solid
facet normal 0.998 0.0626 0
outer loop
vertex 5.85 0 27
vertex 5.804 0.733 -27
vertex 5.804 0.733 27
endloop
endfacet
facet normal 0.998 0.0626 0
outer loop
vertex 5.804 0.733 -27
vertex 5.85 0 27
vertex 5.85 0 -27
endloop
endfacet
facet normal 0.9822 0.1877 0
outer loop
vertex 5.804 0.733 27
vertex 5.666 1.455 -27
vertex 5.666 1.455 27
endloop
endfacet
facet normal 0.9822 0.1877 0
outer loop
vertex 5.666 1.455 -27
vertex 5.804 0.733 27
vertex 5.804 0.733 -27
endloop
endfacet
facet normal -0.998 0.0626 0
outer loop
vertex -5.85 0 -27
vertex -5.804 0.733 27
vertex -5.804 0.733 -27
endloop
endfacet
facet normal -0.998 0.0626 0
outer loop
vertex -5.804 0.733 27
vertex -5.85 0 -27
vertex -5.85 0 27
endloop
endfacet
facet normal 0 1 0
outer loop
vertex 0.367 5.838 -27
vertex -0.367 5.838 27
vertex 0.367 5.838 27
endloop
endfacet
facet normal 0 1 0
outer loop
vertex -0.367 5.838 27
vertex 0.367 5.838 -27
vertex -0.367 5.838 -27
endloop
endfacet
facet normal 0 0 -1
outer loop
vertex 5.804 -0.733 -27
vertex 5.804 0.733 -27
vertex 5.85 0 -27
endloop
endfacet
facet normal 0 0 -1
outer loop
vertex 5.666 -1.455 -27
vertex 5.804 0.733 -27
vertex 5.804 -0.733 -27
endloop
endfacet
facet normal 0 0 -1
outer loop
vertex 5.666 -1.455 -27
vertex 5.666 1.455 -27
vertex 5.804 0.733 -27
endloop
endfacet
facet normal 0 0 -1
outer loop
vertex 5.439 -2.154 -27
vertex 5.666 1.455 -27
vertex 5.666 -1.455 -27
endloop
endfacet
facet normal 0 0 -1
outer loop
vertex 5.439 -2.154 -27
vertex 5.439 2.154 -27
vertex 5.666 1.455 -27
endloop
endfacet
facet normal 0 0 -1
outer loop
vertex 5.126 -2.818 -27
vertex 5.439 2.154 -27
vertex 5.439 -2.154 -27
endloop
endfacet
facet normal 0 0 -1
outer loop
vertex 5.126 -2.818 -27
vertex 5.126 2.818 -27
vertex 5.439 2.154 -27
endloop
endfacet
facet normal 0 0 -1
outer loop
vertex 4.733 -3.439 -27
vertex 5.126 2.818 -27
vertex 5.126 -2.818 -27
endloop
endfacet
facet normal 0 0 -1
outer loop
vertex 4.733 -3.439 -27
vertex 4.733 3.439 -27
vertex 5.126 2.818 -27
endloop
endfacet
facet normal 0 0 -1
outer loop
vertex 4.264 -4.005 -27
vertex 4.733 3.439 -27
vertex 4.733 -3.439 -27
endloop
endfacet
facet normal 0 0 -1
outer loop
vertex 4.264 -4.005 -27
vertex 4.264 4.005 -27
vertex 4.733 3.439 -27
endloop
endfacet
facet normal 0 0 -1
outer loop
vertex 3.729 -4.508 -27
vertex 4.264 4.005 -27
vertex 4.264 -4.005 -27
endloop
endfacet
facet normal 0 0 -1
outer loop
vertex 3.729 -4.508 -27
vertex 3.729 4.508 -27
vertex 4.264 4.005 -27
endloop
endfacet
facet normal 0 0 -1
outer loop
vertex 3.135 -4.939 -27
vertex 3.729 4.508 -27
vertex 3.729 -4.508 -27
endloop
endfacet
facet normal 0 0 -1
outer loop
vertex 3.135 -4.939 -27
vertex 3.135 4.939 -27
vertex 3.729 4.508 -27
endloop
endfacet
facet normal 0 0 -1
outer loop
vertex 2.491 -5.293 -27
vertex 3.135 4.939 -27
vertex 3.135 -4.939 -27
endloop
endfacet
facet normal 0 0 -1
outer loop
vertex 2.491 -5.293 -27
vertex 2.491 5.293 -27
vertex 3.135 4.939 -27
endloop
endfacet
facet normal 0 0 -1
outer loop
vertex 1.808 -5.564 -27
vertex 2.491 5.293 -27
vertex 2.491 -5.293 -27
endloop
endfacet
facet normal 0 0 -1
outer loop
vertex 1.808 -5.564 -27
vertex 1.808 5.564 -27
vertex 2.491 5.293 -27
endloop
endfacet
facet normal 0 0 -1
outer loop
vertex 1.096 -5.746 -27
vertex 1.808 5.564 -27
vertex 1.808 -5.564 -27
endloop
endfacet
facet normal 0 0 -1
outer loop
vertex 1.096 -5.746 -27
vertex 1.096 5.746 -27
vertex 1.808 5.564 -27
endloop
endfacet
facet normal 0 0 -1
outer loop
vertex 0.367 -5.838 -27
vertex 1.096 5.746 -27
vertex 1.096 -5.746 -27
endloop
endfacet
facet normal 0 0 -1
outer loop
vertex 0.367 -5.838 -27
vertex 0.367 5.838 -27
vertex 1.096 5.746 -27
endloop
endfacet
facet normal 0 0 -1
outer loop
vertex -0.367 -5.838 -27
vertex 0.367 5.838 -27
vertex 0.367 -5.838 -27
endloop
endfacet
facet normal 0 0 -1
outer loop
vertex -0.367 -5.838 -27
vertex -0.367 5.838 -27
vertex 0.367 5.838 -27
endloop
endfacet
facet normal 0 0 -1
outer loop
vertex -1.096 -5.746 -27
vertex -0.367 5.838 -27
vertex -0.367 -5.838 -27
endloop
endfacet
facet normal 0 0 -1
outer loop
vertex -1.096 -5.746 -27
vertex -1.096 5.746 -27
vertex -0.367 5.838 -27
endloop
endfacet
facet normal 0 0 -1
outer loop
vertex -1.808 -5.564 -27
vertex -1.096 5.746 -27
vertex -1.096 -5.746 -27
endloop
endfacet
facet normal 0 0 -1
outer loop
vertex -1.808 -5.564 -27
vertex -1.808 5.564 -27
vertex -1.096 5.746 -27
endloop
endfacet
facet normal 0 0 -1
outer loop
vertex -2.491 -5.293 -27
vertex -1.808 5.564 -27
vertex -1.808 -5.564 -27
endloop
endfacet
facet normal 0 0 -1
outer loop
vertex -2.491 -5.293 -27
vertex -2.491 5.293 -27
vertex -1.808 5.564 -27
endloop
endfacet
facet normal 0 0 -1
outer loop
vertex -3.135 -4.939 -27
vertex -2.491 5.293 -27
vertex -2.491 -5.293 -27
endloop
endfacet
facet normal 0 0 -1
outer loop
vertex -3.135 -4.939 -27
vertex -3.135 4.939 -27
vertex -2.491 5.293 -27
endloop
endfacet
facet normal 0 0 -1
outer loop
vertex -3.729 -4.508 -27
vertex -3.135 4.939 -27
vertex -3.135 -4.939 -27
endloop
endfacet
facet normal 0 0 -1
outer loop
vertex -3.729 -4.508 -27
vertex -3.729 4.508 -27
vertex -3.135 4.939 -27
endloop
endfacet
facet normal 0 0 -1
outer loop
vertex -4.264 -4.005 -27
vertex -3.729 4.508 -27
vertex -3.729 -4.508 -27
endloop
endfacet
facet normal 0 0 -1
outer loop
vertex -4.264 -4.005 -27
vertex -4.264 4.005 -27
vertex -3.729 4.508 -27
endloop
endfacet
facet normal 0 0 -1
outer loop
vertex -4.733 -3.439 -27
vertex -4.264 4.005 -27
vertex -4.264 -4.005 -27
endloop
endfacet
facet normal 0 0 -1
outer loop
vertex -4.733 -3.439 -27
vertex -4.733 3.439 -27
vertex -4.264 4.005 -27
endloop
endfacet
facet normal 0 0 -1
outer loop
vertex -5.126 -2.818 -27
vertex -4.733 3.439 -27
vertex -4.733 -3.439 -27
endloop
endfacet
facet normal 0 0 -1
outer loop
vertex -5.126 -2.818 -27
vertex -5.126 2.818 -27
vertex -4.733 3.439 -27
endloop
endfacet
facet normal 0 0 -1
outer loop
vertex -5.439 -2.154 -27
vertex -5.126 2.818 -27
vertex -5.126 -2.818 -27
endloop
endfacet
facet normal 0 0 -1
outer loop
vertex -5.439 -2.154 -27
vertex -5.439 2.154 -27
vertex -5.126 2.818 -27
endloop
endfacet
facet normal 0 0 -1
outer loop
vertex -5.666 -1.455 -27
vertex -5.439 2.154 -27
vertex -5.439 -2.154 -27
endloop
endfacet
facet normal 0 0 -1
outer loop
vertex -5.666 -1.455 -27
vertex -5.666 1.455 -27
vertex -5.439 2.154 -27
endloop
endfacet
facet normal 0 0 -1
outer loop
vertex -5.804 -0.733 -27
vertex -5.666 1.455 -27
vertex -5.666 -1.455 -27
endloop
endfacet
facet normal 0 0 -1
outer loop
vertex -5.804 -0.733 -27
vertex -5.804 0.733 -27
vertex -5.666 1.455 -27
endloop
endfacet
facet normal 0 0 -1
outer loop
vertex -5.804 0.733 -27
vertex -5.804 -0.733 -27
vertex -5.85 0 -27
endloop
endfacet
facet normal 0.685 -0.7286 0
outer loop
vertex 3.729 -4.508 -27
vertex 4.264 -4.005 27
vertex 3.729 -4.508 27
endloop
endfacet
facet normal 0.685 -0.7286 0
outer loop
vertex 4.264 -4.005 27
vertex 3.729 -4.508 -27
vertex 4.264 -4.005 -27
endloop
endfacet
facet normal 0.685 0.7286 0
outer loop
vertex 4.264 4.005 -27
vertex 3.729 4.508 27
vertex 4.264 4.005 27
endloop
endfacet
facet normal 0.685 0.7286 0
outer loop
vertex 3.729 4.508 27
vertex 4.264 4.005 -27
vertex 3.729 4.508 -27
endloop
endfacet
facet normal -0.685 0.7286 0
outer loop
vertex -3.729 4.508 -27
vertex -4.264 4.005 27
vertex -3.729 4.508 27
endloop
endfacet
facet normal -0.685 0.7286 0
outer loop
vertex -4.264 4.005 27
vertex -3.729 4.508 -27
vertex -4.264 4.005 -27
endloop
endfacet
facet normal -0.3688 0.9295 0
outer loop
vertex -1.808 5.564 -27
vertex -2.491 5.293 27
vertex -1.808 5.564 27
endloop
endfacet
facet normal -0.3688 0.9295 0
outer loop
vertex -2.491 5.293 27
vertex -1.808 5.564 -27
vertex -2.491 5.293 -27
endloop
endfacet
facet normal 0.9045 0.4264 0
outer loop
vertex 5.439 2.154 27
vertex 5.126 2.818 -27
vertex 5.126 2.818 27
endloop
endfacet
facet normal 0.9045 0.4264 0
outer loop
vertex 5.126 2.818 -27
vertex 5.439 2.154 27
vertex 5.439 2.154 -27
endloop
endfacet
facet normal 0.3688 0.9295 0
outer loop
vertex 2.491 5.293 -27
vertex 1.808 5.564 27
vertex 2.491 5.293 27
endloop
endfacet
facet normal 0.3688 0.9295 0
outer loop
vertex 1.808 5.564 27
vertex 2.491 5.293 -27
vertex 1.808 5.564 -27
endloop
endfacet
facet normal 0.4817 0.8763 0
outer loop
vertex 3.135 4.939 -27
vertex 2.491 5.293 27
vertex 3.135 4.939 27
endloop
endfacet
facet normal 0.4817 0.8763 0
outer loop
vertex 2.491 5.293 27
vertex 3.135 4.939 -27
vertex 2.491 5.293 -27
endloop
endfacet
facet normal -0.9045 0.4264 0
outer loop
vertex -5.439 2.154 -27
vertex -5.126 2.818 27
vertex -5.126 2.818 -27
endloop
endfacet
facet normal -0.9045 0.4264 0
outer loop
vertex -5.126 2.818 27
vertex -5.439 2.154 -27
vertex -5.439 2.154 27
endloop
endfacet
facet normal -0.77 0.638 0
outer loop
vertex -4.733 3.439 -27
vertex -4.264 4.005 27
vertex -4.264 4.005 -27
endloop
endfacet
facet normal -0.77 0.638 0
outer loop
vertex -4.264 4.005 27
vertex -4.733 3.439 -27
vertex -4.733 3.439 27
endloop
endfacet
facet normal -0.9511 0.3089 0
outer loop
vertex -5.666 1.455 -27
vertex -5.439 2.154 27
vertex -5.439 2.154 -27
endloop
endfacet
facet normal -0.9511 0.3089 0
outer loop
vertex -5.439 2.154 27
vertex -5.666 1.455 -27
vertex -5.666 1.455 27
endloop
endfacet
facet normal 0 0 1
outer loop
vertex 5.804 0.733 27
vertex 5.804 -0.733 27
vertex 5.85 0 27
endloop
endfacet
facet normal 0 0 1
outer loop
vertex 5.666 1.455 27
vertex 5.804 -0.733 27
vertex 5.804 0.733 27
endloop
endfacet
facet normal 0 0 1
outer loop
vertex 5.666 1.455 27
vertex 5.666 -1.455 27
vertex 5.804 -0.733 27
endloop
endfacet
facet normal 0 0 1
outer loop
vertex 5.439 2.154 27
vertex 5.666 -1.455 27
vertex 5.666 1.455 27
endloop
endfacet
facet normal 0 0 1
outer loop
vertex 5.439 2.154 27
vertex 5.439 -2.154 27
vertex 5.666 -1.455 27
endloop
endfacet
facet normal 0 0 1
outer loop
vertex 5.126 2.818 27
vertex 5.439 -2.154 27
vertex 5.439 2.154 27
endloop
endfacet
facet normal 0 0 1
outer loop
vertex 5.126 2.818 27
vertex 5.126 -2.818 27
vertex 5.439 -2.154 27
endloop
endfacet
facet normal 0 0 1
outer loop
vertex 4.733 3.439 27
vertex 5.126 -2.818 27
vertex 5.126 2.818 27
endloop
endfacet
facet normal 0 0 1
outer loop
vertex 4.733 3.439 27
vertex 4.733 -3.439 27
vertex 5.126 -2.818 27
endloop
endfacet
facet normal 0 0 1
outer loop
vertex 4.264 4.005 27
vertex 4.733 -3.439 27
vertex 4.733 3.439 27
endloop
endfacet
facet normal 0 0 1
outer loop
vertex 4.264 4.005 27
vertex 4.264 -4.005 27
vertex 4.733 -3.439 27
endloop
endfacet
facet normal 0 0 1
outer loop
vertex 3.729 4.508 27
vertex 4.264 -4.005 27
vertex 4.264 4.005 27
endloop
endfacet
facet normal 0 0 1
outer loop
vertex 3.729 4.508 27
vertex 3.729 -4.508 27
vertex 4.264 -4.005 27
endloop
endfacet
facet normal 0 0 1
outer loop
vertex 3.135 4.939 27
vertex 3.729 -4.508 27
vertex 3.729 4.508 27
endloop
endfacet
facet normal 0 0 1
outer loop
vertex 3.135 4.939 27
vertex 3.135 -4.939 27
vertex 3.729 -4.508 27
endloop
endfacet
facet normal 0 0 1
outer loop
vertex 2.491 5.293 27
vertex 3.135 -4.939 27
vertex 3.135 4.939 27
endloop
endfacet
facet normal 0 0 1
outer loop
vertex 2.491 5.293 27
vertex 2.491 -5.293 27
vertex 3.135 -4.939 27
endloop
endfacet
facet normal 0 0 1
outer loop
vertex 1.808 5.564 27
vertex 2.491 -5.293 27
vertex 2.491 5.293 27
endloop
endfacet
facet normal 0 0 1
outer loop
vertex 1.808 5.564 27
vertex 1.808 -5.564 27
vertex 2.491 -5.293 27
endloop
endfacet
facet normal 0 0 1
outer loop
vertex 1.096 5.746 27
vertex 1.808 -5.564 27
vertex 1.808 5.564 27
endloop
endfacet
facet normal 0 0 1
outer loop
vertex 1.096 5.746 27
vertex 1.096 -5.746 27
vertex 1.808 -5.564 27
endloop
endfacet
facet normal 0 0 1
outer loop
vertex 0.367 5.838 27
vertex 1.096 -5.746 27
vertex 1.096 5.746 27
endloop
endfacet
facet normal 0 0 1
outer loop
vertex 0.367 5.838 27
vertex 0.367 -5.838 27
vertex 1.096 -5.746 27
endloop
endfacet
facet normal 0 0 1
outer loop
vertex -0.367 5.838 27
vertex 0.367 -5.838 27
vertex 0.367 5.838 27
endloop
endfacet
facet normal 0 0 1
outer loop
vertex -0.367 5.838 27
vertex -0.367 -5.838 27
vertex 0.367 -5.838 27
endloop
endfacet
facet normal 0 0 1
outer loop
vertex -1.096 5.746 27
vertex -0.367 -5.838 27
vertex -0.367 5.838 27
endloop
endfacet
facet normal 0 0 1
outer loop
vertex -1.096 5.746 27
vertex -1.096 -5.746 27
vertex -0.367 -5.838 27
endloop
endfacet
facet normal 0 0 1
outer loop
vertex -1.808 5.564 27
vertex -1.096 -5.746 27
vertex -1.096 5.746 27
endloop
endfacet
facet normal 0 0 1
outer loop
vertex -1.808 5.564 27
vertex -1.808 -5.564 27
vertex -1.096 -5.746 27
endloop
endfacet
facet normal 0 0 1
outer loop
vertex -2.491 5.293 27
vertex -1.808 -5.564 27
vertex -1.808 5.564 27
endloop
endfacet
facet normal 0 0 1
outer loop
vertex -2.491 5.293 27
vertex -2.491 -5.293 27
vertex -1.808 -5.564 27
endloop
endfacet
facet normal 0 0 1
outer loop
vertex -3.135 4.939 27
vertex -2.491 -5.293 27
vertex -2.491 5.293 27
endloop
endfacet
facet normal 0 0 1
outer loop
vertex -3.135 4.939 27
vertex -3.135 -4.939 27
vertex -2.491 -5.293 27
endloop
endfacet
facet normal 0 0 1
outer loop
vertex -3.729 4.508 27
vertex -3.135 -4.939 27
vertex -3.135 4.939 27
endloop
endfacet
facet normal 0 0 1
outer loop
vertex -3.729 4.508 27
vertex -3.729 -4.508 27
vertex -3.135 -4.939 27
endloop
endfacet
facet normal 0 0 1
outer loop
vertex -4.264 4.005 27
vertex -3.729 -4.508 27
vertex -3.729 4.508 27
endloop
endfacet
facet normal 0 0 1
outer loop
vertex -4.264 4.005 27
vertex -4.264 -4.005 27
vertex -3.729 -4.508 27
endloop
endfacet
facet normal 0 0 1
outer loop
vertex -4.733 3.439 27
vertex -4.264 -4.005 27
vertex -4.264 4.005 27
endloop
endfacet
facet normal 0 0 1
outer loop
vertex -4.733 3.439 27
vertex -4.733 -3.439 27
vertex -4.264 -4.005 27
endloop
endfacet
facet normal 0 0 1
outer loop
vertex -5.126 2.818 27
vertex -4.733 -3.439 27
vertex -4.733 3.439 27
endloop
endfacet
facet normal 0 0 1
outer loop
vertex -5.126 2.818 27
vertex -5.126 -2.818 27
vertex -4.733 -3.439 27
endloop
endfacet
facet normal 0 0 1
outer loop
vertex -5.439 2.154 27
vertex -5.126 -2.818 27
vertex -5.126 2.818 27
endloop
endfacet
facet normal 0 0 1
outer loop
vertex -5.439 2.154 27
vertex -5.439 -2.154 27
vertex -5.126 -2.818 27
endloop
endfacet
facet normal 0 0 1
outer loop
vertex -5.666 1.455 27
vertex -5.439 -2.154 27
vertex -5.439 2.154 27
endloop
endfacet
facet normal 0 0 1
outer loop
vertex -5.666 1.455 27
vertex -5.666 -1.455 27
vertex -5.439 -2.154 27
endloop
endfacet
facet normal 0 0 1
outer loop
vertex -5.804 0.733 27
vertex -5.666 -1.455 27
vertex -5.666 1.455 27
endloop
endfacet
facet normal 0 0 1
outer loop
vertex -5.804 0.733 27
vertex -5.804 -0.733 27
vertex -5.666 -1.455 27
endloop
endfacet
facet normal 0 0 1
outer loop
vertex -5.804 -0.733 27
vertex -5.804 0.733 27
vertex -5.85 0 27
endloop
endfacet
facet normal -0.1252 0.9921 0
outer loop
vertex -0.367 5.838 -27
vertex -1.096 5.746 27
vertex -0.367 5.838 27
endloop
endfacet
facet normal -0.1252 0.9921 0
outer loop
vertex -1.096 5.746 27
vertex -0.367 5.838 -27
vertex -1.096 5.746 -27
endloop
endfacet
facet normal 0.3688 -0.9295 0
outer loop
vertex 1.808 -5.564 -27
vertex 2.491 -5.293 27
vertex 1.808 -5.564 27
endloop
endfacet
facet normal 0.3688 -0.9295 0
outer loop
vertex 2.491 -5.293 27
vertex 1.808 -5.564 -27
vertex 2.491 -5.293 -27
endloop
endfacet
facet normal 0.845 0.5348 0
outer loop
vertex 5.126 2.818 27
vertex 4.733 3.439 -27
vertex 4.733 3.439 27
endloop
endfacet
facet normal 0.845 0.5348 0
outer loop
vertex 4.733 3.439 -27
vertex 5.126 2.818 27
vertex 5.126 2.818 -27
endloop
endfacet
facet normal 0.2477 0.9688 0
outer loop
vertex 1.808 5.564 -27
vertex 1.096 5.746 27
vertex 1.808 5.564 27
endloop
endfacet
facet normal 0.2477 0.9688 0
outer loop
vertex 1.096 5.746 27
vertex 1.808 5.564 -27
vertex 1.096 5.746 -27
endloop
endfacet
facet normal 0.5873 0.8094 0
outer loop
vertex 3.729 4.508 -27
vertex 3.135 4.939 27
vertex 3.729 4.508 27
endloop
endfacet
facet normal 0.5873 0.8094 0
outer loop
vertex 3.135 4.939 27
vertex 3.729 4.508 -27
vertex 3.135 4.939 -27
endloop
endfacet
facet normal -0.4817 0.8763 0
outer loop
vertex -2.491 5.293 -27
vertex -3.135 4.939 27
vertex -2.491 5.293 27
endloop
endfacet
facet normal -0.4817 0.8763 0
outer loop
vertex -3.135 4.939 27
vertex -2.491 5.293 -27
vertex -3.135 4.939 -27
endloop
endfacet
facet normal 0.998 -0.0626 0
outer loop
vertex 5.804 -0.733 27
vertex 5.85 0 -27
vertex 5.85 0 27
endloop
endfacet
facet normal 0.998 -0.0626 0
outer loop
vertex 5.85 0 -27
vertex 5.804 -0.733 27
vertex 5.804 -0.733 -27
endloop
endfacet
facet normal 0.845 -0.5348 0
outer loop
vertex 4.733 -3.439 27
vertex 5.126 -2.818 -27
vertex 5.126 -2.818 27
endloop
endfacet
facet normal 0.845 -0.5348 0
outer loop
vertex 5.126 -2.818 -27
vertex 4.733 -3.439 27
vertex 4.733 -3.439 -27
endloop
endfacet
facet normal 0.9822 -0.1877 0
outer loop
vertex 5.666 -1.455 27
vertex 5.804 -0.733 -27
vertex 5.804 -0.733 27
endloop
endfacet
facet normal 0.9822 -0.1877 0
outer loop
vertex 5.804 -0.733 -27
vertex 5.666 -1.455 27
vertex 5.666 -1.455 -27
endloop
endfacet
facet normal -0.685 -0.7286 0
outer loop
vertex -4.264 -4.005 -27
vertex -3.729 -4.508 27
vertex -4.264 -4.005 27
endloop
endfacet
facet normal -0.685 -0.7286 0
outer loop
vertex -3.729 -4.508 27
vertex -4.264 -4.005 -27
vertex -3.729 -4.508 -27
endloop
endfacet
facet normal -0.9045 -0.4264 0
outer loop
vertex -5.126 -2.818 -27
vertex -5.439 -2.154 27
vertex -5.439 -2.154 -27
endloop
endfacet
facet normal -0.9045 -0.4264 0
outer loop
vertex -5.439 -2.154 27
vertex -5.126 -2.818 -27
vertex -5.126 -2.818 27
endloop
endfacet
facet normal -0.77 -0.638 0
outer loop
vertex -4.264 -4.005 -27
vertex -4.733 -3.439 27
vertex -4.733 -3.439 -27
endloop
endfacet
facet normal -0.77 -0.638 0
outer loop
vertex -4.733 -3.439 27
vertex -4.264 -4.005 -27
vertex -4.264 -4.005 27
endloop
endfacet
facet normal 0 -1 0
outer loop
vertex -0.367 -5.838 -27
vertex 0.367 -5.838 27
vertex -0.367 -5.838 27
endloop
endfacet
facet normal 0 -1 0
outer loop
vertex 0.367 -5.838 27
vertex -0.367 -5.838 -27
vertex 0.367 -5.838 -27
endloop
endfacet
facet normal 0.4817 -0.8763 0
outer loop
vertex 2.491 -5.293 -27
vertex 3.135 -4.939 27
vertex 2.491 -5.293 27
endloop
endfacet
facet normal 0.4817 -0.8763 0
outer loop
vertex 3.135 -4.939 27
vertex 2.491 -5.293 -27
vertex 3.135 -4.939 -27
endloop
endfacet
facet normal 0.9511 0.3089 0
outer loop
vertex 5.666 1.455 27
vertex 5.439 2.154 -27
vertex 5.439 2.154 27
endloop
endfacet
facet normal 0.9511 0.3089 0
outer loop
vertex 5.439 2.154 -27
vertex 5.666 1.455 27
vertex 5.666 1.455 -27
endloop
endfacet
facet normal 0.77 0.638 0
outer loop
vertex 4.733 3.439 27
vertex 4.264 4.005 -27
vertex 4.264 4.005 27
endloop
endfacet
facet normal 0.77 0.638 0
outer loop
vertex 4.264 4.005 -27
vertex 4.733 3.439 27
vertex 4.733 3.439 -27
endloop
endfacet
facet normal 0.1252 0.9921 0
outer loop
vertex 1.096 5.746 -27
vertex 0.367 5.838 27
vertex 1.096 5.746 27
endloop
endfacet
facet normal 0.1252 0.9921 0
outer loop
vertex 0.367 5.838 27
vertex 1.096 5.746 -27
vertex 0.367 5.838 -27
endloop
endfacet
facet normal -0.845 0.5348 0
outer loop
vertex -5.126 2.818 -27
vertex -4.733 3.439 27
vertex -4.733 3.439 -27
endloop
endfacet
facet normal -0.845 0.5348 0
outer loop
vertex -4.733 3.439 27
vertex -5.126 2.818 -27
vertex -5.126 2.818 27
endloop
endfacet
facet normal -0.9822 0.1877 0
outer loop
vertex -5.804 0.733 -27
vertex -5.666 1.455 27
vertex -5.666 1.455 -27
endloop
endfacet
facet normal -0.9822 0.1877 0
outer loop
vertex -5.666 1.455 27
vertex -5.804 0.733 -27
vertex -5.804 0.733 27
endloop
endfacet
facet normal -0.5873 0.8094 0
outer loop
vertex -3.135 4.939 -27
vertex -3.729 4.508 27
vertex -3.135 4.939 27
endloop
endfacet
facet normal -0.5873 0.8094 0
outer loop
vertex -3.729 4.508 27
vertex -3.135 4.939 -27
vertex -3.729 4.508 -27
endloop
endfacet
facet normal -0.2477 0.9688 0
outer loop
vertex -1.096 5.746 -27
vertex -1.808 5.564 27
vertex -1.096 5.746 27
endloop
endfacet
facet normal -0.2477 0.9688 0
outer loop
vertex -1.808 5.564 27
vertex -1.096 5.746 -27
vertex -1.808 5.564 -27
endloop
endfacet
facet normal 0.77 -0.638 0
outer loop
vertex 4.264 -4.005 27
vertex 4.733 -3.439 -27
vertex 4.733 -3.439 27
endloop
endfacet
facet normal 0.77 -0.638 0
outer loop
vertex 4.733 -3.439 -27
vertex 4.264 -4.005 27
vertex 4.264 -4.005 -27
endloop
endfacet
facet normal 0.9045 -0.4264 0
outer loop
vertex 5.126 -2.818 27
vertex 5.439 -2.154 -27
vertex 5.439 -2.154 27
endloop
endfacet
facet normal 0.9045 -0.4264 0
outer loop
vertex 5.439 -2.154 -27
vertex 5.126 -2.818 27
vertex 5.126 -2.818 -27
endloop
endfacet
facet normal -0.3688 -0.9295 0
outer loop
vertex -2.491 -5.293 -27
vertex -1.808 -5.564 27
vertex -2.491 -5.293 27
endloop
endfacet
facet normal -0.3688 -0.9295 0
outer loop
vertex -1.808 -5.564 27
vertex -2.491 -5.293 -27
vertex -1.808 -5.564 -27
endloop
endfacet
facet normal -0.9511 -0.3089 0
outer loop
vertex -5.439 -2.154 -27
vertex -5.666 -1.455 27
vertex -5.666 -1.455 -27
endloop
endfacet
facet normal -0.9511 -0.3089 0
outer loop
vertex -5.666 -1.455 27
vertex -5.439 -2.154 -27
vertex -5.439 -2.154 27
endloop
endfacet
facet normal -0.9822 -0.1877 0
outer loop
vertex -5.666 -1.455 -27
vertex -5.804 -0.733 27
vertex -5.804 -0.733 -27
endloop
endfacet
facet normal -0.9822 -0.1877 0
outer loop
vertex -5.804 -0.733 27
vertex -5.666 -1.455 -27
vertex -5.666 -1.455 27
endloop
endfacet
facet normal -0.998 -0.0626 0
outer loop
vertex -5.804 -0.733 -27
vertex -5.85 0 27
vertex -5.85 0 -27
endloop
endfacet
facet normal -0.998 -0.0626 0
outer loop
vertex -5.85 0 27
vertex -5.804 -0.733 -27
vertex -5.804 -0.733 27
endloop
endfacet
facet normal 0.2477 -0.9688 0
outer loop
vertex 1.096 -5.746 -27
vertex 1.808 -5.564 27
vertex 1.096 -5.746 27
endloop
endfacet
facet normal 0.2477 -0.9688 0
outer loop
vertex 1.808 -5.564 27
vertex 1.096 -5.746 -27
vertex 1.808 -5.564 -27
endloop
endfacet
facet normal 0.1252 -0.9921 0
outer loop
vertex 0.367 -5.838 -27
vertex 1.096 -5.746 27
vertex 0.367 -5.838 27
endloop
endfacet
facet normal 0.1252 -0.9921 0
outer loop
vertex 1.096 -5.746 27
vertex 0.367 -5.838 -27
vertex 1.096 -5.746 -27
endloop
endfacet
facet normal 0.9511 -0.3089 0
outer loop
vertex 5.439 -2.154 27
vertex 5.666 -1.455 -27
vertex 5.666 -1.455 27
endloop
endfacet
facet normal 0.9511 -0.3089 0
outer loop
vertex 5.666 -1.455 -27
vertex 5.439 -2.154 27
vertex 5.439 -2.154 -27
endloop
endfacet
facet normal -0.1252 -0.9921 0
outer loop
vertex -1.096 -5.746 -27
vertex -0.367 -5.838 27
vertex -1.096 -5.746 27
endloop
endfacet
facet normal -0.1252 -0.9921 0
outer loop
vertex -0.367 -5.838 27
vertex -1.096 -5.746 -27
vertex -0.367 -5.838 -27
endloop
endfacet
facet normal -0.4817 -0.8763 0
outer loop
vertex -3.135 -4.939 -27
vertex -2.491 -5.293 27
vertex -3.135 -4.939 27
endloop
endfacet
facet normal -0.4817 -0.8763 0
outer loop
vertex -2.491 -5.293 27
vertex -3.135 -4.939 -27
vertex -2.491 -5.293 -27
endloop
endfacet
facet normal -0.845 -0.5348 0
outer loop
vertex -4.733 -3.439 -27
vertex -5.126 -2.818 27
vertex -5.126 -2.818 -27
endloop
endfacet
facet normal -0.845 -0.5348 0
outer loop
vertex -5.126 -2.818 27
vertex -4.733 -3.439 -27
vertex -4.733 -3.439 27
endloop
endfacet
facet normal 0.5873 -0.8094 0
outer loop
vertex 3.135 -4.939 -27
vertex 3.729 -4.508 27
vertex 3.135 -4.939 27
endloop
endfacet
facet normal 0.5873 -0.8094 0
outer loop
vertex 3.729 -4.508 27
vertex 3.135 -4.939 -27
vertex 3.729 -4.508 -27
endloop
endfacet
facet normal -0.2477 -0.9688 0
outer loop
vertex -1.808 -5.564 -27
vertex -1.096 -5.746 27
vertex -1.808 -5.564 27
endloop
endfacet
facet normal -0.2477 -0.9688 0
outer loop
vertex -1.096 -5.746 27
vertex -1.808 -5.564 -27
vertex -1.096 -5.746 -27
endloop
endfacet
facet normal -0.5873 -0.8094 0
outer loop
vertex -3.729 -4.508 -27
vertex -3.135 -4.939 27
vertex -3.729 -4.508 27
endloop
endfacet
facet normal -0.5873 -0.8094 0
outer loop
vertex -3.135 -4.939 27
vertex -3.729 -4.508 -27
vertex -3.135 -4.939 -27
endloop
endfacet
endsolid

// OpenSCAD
$fn = 50;


difference() {
	union() {
		translate(v = [0, 0, -27.0000000000]) {
			cylinder(h = 54, r = 5.8500000000);
		}
	}
	union() {
		translate(v = [0, 0, -100.0000000000]) {
			cylinder(h = 200, r = 0);
		}
	}
}
